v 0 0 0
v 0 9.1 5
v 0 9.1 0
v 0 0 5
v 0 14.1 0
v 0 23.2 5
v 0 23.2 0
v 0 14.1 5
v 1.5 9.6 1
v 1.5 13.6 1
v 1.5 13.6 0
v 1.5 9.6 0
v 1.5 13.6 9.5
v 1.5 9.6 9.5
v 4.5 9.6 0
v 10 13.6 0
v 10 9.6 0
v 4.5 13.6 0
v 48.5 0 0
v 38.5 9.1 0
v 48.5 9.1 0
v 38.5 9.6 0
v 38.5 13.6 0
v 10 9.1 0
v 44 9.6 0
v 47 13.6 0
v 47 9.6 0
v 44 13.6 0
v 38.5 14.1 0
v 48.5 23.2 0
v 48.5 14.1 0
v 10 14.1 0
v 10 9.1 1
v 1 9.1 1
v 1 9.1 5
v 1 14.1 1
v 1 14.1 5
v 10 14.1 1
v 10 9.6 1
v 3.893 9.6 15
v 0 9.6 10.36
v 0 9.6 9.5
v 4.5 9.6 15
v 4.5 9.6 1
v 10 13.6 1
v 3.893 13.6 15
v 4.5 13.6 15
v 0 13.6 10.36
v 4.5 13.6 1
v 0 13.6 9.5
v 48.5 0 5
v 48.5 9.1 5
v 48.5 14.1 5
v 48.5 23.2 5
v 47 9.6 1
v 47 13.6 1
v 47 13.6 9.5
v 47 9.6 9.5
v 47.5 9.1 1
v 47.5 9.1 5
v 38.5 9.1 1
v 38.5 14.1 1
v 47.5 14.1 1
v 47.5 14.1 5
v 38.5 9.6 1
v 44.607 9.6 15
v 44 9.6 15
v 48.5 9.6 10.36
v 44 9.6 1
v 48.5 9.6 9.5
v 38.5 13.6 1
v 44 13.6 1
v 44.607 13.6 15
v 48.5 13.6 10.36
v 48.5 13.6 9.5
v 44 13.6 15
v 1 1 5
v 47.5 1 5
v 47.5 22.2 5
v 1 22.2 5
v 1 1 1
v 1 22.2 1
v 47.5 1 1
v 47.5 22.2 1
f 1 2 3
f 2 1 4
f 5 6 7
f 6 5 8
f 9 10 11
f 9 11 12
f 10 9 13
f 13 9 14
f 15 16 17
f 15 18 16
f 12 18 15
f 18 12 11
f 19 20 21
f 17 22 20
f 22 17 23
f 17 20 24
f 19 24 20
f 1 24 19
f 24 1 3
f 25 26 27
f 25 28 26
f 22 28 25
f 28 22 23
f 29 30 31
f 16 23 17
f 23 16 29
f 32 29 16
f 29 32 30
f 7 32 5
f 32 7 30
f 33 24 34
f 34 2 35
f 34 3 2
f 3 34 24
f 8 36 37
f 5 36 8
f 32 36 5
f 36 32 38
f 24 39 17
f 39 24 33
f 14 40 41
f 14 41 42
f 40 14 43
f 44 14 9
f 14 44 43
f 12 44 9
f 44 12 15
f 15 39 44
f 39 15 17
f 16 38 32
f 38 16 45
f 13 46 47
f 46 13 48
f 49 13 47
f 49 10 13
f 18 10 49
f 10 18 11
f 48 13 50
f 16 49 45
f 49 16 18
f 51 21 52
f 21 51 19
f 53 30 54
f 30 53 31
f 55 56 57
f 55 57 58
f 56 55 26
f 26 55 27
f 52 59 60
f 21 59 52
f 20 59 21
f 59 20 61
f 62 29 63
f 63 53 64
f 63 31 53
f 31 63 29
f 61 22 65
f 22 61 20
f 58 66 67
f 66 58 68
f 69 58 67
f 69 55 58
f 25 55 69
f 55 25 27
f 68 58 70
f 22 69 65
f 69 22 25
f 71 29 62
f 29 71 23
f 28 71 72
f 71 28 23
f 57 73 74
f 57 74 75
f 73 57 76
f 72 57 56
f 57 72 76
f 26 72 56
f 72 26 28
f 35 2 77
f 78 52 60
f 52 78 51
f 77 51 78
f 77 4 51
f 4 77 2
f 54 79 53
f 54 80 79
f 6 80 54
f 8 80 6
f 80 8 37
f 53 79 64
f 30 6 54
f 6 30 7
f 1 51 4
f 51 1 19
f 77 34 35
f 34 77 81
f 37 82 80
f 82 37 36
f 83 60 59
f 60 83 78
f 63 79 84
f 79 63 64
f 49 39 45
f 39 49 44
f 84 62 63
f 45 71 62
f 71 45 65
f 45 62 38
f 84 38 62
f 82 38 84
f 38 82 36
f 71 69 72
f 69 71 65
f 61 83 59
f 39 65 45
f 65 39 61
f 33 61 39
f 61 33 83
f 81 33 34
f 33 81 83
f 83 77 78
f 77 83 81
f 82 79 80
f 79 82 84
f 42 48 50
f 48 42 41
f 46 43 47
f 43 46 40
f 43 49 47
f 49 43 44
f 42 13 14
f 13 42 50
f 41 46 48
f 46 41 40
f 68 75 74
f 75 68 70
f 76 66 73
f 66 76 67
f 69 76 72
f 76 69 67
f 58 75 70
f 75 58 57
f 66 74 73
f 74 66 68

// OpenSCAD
Base();

translate([0,9.6,0])
    clip();
    
translate([48.5,9.6,0])
    mirror ([1,0,0])
    clip();

module Base()
{
 difference()
 {
 cube([48.5,23.2,5]); 
 translate([1,1,1])
  cube([46.5,21.2,4]);
     
 translate([0,9.1,0])       
        notch();
     
 translate([48.5,9.1,0])
    mirror ([1,0,0])
    notch();
 } 
}

module notch()
{
    cube([1.5,5,9.5]);
    cube([10,.5,2]);
    translate([0,4.5,0])
    cube([10,.5,2]);
}

module clip()
{
    difference()
    {
        cube([4.5,4,15]);
        Clip_notch();
        translate([-10,-1,14])
        rotate([0,40,0])
        cube([10,6,11]);
    }
}

module Clip_notch()
{
    cube([1.5,5,9.5]);
}
